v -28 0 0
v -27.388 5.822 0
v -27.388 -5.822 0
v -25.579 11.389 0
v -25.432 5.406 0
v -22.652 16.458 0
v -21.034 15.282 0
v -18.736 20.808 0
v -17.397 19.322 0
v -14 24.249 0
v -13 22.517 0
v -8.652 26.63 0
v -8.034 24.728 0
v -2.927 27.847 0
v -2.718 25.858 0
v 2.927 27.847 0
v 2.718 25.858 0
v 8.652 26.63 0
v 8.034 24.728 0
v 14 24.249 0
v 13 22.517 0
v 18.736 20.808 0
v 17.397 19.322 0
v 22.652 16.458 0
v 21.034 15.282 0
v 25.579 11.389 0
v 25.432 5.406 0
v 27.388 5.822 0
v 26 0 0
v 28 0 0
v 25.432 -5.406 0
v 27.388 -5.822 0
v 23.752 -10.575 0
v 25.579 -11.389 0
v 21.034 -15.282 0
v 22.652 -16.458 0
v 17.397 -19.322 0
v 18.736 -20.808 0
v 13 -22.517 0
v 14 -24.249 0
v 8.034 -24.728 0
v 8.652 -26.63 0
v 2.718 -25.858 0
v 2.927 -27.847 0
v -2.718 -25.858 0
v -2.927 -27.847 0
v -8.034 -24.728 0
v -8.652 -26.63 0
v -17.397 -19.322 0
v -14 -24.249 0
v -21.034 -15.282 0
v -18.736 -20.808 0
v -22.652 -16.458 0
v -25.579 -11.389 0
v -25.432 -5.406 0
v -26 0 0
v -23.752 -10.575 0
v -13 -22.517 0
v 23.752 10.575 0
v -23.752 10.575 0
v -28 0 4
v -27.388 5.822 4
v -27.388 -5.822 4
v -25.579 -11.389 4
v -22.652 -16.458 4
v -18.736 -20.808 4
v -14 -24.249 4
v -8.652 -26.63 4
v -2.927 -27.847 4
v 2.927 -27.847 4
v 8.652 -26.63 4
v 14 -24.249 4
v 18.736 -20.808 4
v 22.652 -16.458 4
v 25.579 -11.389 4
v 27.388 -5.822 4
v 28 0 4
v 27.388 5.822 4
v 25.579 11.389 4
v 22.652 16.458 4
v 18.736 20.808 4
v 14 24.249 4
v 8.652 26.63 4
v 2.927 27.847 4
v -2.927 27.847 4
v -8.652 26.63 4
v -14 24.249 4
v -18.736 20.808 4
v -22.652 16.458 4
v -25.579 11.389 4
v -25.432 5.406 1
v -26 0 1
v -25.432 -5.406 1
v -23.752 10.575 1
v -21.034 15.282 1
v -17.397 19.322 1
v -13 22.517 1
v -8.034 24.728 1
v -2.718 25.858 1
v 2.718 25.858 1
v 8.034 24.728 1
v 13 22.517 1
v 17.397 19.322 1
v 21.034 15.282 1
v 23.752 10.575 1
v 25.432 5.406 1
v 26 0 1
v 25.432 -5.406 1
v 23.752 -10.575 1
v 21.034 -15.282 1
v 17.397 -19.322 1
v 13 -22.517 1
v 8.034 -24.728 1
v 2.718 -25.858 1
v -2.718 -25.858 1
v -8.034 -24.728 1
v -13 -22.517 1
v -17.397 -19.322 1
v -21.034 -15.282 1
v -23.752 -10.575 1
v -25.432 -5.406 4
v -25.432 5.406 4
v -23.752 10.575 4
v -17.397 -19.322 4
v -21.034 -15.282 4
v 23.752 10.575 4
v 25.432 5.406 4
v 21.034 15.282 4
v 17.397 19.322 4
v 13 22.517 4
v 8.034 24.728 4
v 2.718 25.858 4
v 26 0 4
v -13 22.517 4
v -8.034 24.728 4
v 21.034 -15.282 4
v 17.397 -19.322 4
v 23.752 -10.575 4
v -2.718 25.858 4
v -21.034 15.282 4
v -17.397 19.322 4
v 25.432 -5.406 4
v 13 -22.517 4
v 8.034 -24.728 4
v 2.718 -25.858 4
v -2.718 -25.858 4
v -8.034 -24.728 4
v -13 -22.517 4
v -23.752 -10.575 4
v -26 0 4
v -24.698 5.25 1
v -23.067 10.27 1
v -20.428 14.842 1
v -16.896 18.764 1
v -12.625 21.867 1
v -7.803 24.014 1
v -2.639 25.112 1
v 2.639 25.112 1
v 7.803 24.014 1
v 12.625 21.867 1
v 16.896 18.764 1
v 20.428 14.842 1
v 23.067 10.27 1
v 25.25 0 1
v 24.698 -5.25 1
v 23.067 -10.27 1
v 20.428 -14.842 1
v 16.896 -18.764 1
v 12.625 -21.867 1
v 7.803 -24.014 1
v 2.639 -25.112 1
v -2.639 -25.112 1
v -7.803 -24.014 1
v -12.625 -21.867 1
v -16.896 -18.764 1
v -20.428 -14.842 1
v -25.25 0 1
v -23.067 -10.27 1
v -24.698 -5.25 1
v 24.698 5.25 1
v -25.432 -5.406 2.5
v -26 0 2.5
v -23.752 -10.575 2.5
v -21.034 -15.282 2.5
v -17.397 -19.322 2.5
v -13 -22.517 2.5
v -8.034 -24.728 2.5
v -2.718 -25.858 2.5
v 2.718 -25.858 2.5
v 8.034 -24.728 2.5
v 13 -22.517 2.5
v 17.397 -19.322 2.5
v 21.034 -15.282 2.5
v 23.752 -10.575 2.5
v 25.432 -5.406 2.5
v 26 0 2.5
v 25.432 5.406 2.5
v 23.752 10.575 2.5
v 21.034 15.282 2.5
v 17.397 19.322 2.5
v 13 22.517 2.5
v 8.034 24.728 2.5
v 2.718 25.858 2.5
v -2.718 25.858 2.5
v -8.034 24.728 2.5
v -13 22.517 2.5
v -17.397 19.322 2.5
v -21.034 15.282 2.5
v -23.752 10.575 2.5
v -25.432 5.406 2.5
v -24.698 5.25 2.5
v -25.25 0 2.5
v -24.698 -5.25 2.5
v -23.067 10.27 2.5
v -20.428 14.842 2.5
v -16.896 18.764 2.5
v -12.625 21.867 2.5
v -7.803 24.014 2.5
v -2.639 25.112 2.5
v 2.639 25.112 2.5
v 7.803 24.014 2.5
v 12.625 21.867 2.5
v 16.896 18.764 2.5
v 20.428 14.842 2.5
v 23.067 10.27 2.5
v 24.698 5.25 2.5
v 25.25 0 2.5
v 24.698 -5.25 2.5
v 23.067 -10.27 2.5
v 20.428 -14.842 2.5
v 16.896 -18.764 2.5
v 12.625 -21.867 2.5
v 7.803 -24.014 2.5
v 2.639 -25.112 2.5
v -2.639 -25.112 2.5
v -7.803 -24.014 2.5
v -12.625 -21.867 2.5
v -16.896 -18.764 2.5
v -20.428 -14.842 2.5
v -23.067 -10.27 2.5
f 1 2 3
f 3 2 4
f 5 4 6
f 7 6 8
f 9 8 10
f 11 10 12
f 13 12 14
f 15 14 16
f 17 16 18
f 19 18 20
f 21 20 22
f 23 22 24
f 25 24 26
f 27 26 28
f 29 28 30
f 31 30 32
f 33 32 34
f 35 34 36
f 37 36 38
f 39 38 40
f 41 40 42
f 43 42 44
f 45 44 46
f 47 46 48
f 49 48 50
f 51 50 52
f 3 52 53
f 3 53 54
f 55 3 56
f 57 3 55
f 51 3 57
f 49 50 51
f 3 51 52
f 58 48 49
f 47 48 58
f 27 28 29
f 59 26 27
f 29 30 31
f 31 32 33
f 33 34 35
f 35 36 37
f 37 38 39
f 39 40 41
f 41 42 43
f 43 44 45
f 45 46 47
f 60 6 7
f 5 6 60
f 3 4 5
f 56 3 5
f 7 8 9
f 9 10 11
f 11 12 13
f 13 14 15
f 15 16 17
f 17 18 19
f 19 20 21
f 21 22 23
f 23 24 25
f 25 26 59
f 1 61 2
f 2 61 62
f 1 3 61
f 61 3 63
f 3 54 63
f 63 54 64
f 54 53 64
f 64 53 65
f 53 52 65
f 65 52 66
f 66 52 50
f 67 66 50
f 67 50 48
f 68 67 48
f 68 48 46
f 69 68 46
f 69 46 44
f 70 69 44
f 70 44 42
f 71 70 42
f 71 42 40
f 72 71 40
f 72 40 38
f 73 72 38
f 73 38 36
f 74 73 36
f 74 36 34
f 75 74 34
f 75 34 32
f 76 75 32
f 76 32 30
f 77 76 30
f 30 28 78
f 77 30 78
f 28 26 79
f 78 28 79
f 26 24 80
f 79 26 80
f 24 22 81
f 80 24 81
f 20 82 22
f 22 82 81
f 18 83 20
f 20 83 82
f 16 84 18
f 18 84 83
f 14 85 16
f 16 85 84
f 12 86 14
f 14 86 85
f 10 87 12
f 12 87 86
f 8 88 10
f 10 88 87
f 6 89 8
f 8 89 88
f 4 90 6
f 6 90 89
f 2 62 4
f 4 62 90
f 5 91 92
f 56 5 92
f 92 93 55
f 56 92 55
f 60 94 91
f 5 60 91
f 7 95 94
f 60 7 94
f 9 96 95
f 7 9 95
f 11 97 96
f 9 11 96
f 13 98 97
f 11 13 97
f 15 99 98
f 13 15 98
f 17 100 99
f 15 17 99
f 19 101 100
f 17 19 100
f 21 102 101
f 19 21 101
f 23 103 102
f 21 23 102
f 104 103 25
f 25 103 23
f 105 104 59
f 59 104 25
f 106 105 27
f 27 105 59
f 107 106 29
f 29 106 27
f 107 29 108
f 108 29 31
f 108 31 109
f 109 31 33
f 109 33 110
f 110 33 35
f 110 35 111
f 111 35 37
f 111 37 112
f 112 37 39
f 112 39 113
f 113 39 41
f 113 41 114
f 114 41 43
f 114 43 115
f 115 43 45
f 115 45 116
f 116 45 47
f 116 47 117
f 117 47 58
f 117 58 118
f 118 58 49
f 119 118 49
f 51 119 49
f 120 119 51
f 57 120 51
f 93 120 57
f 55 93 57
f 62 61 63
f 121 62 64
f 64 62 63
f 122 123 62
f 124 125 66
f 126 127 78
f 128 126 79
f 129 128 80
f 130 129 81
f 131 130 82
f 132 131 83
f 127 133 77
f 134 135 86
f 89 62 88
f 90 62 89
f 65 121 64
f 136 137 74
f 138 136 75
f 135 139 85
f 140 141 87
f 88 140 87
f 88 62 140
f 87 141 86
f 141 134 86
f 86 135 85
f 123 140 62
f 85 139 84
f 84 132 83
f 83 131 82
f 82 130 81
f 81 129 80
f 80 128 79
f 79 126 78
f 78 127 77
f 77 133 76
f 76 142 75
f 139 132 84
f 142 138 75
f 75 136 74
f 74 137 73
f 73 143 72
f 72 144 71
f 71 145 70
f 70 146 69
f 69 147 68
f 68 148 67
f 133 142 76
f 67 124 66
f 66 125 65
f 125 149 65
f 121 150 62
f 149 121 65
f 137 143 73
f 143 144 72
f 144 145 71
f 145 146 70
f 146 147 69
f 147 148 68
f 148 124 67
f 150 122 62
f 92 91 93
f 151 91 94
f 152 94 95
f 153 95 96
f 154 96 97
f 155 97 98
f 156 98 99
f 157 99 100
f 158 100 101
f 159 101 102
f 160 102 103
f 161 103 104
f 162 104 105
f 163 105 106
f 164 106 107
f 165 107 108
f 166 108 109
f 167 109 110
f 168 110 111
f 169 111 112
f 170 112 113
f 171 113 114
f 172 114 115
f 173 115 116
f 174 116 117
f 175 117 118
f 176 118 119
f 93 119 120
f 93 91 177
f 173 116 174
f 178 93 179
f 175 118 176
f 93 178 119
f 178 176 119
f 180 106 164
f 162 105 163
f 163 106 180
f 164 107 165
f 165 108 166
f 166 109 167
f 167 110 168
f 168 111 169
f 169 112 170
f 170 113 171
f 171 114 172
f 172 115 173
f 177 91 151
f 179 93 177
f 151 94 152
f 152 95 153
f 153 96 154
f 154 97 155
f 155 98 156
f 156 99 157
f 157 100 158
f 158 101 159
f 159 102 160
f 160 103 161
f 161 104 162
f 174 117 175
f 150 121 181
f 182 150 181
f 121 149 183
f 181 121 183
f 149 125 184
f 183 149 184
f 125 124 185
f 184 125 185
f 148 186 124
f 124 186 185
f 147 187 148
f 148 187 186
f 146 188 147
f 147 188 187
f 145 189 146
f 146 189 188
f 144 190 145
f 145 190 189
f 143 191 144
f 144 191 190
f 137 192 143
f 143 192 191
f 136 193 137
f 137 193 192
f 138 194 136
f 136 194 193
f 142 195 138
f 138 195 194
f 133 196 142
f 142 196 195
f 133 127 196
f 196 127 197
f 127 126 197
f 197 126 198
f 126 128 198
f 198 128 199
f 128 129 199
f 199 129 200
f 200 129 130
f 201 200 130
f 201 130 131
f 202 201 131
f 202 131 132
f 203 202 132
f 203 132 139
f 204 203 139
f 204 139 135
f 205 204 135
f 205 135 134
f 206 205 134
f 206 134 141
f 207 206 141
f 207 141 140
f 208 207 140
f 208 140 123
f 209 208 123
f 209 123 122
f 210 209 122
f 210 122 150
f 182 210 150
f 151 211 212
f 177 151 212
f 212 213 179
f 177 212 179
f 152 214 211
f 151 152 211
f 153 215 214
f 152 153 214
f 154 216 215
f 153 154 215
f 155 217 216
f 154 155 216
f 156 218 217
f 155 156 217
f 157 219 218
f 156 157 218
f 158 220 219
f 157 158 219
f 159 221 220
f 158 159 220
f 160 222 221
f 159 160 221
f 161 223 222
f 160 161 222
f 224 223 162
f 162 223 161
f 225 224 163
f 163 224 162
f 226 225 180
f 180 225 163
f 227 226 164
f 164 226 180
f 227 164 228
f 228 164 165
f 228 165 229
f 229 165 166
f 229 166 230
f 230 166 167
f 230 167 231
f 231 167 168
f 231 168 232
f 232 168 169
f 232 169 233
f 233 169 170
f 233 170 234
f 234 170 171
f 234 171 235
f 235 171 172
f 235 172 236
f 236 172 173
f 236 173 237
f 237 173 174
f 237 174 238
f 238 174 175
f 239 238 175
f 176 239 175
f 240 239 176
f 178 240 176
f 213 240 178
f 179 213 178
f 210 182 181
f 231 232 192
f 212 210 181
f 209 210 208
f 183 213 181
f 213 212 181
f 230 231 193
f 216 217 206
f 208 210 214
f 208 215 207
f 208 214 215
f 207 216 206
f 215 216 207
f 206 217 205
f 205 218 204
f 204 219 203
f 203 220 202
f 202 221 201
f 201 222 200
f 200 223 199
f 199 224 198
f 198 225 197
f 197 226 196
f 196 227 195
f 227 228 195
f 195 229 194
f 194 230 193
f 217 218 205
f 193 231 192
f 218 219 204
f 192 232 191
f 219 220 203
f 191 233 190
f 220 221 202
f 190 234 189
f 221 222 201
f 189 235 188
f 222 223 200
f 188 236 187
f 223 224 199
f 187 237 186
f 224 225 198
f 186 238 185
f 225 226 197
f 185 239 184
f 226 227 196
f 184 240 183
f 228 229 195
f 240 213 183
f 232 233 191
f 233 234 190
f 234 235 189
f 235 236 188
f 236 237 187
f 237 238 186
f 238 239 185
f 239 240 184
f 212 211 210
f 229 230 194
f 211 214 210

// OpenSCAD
redLenW = 52;
redLenH = 4;
redLenPared = 4;


createHaro(redLenW,redLenH,redLenPared);
translate([0,0,1])
createHaro(redLenW-1.5,1.5,redLenPared);

module createHaro(w,h,d)
{
	difference()
	{
		cylinder(r=((w+d)/2),h);
		translate([0,0,-0.1])
		cylinder(r=((w)/2),h+0.2);
	}
}
